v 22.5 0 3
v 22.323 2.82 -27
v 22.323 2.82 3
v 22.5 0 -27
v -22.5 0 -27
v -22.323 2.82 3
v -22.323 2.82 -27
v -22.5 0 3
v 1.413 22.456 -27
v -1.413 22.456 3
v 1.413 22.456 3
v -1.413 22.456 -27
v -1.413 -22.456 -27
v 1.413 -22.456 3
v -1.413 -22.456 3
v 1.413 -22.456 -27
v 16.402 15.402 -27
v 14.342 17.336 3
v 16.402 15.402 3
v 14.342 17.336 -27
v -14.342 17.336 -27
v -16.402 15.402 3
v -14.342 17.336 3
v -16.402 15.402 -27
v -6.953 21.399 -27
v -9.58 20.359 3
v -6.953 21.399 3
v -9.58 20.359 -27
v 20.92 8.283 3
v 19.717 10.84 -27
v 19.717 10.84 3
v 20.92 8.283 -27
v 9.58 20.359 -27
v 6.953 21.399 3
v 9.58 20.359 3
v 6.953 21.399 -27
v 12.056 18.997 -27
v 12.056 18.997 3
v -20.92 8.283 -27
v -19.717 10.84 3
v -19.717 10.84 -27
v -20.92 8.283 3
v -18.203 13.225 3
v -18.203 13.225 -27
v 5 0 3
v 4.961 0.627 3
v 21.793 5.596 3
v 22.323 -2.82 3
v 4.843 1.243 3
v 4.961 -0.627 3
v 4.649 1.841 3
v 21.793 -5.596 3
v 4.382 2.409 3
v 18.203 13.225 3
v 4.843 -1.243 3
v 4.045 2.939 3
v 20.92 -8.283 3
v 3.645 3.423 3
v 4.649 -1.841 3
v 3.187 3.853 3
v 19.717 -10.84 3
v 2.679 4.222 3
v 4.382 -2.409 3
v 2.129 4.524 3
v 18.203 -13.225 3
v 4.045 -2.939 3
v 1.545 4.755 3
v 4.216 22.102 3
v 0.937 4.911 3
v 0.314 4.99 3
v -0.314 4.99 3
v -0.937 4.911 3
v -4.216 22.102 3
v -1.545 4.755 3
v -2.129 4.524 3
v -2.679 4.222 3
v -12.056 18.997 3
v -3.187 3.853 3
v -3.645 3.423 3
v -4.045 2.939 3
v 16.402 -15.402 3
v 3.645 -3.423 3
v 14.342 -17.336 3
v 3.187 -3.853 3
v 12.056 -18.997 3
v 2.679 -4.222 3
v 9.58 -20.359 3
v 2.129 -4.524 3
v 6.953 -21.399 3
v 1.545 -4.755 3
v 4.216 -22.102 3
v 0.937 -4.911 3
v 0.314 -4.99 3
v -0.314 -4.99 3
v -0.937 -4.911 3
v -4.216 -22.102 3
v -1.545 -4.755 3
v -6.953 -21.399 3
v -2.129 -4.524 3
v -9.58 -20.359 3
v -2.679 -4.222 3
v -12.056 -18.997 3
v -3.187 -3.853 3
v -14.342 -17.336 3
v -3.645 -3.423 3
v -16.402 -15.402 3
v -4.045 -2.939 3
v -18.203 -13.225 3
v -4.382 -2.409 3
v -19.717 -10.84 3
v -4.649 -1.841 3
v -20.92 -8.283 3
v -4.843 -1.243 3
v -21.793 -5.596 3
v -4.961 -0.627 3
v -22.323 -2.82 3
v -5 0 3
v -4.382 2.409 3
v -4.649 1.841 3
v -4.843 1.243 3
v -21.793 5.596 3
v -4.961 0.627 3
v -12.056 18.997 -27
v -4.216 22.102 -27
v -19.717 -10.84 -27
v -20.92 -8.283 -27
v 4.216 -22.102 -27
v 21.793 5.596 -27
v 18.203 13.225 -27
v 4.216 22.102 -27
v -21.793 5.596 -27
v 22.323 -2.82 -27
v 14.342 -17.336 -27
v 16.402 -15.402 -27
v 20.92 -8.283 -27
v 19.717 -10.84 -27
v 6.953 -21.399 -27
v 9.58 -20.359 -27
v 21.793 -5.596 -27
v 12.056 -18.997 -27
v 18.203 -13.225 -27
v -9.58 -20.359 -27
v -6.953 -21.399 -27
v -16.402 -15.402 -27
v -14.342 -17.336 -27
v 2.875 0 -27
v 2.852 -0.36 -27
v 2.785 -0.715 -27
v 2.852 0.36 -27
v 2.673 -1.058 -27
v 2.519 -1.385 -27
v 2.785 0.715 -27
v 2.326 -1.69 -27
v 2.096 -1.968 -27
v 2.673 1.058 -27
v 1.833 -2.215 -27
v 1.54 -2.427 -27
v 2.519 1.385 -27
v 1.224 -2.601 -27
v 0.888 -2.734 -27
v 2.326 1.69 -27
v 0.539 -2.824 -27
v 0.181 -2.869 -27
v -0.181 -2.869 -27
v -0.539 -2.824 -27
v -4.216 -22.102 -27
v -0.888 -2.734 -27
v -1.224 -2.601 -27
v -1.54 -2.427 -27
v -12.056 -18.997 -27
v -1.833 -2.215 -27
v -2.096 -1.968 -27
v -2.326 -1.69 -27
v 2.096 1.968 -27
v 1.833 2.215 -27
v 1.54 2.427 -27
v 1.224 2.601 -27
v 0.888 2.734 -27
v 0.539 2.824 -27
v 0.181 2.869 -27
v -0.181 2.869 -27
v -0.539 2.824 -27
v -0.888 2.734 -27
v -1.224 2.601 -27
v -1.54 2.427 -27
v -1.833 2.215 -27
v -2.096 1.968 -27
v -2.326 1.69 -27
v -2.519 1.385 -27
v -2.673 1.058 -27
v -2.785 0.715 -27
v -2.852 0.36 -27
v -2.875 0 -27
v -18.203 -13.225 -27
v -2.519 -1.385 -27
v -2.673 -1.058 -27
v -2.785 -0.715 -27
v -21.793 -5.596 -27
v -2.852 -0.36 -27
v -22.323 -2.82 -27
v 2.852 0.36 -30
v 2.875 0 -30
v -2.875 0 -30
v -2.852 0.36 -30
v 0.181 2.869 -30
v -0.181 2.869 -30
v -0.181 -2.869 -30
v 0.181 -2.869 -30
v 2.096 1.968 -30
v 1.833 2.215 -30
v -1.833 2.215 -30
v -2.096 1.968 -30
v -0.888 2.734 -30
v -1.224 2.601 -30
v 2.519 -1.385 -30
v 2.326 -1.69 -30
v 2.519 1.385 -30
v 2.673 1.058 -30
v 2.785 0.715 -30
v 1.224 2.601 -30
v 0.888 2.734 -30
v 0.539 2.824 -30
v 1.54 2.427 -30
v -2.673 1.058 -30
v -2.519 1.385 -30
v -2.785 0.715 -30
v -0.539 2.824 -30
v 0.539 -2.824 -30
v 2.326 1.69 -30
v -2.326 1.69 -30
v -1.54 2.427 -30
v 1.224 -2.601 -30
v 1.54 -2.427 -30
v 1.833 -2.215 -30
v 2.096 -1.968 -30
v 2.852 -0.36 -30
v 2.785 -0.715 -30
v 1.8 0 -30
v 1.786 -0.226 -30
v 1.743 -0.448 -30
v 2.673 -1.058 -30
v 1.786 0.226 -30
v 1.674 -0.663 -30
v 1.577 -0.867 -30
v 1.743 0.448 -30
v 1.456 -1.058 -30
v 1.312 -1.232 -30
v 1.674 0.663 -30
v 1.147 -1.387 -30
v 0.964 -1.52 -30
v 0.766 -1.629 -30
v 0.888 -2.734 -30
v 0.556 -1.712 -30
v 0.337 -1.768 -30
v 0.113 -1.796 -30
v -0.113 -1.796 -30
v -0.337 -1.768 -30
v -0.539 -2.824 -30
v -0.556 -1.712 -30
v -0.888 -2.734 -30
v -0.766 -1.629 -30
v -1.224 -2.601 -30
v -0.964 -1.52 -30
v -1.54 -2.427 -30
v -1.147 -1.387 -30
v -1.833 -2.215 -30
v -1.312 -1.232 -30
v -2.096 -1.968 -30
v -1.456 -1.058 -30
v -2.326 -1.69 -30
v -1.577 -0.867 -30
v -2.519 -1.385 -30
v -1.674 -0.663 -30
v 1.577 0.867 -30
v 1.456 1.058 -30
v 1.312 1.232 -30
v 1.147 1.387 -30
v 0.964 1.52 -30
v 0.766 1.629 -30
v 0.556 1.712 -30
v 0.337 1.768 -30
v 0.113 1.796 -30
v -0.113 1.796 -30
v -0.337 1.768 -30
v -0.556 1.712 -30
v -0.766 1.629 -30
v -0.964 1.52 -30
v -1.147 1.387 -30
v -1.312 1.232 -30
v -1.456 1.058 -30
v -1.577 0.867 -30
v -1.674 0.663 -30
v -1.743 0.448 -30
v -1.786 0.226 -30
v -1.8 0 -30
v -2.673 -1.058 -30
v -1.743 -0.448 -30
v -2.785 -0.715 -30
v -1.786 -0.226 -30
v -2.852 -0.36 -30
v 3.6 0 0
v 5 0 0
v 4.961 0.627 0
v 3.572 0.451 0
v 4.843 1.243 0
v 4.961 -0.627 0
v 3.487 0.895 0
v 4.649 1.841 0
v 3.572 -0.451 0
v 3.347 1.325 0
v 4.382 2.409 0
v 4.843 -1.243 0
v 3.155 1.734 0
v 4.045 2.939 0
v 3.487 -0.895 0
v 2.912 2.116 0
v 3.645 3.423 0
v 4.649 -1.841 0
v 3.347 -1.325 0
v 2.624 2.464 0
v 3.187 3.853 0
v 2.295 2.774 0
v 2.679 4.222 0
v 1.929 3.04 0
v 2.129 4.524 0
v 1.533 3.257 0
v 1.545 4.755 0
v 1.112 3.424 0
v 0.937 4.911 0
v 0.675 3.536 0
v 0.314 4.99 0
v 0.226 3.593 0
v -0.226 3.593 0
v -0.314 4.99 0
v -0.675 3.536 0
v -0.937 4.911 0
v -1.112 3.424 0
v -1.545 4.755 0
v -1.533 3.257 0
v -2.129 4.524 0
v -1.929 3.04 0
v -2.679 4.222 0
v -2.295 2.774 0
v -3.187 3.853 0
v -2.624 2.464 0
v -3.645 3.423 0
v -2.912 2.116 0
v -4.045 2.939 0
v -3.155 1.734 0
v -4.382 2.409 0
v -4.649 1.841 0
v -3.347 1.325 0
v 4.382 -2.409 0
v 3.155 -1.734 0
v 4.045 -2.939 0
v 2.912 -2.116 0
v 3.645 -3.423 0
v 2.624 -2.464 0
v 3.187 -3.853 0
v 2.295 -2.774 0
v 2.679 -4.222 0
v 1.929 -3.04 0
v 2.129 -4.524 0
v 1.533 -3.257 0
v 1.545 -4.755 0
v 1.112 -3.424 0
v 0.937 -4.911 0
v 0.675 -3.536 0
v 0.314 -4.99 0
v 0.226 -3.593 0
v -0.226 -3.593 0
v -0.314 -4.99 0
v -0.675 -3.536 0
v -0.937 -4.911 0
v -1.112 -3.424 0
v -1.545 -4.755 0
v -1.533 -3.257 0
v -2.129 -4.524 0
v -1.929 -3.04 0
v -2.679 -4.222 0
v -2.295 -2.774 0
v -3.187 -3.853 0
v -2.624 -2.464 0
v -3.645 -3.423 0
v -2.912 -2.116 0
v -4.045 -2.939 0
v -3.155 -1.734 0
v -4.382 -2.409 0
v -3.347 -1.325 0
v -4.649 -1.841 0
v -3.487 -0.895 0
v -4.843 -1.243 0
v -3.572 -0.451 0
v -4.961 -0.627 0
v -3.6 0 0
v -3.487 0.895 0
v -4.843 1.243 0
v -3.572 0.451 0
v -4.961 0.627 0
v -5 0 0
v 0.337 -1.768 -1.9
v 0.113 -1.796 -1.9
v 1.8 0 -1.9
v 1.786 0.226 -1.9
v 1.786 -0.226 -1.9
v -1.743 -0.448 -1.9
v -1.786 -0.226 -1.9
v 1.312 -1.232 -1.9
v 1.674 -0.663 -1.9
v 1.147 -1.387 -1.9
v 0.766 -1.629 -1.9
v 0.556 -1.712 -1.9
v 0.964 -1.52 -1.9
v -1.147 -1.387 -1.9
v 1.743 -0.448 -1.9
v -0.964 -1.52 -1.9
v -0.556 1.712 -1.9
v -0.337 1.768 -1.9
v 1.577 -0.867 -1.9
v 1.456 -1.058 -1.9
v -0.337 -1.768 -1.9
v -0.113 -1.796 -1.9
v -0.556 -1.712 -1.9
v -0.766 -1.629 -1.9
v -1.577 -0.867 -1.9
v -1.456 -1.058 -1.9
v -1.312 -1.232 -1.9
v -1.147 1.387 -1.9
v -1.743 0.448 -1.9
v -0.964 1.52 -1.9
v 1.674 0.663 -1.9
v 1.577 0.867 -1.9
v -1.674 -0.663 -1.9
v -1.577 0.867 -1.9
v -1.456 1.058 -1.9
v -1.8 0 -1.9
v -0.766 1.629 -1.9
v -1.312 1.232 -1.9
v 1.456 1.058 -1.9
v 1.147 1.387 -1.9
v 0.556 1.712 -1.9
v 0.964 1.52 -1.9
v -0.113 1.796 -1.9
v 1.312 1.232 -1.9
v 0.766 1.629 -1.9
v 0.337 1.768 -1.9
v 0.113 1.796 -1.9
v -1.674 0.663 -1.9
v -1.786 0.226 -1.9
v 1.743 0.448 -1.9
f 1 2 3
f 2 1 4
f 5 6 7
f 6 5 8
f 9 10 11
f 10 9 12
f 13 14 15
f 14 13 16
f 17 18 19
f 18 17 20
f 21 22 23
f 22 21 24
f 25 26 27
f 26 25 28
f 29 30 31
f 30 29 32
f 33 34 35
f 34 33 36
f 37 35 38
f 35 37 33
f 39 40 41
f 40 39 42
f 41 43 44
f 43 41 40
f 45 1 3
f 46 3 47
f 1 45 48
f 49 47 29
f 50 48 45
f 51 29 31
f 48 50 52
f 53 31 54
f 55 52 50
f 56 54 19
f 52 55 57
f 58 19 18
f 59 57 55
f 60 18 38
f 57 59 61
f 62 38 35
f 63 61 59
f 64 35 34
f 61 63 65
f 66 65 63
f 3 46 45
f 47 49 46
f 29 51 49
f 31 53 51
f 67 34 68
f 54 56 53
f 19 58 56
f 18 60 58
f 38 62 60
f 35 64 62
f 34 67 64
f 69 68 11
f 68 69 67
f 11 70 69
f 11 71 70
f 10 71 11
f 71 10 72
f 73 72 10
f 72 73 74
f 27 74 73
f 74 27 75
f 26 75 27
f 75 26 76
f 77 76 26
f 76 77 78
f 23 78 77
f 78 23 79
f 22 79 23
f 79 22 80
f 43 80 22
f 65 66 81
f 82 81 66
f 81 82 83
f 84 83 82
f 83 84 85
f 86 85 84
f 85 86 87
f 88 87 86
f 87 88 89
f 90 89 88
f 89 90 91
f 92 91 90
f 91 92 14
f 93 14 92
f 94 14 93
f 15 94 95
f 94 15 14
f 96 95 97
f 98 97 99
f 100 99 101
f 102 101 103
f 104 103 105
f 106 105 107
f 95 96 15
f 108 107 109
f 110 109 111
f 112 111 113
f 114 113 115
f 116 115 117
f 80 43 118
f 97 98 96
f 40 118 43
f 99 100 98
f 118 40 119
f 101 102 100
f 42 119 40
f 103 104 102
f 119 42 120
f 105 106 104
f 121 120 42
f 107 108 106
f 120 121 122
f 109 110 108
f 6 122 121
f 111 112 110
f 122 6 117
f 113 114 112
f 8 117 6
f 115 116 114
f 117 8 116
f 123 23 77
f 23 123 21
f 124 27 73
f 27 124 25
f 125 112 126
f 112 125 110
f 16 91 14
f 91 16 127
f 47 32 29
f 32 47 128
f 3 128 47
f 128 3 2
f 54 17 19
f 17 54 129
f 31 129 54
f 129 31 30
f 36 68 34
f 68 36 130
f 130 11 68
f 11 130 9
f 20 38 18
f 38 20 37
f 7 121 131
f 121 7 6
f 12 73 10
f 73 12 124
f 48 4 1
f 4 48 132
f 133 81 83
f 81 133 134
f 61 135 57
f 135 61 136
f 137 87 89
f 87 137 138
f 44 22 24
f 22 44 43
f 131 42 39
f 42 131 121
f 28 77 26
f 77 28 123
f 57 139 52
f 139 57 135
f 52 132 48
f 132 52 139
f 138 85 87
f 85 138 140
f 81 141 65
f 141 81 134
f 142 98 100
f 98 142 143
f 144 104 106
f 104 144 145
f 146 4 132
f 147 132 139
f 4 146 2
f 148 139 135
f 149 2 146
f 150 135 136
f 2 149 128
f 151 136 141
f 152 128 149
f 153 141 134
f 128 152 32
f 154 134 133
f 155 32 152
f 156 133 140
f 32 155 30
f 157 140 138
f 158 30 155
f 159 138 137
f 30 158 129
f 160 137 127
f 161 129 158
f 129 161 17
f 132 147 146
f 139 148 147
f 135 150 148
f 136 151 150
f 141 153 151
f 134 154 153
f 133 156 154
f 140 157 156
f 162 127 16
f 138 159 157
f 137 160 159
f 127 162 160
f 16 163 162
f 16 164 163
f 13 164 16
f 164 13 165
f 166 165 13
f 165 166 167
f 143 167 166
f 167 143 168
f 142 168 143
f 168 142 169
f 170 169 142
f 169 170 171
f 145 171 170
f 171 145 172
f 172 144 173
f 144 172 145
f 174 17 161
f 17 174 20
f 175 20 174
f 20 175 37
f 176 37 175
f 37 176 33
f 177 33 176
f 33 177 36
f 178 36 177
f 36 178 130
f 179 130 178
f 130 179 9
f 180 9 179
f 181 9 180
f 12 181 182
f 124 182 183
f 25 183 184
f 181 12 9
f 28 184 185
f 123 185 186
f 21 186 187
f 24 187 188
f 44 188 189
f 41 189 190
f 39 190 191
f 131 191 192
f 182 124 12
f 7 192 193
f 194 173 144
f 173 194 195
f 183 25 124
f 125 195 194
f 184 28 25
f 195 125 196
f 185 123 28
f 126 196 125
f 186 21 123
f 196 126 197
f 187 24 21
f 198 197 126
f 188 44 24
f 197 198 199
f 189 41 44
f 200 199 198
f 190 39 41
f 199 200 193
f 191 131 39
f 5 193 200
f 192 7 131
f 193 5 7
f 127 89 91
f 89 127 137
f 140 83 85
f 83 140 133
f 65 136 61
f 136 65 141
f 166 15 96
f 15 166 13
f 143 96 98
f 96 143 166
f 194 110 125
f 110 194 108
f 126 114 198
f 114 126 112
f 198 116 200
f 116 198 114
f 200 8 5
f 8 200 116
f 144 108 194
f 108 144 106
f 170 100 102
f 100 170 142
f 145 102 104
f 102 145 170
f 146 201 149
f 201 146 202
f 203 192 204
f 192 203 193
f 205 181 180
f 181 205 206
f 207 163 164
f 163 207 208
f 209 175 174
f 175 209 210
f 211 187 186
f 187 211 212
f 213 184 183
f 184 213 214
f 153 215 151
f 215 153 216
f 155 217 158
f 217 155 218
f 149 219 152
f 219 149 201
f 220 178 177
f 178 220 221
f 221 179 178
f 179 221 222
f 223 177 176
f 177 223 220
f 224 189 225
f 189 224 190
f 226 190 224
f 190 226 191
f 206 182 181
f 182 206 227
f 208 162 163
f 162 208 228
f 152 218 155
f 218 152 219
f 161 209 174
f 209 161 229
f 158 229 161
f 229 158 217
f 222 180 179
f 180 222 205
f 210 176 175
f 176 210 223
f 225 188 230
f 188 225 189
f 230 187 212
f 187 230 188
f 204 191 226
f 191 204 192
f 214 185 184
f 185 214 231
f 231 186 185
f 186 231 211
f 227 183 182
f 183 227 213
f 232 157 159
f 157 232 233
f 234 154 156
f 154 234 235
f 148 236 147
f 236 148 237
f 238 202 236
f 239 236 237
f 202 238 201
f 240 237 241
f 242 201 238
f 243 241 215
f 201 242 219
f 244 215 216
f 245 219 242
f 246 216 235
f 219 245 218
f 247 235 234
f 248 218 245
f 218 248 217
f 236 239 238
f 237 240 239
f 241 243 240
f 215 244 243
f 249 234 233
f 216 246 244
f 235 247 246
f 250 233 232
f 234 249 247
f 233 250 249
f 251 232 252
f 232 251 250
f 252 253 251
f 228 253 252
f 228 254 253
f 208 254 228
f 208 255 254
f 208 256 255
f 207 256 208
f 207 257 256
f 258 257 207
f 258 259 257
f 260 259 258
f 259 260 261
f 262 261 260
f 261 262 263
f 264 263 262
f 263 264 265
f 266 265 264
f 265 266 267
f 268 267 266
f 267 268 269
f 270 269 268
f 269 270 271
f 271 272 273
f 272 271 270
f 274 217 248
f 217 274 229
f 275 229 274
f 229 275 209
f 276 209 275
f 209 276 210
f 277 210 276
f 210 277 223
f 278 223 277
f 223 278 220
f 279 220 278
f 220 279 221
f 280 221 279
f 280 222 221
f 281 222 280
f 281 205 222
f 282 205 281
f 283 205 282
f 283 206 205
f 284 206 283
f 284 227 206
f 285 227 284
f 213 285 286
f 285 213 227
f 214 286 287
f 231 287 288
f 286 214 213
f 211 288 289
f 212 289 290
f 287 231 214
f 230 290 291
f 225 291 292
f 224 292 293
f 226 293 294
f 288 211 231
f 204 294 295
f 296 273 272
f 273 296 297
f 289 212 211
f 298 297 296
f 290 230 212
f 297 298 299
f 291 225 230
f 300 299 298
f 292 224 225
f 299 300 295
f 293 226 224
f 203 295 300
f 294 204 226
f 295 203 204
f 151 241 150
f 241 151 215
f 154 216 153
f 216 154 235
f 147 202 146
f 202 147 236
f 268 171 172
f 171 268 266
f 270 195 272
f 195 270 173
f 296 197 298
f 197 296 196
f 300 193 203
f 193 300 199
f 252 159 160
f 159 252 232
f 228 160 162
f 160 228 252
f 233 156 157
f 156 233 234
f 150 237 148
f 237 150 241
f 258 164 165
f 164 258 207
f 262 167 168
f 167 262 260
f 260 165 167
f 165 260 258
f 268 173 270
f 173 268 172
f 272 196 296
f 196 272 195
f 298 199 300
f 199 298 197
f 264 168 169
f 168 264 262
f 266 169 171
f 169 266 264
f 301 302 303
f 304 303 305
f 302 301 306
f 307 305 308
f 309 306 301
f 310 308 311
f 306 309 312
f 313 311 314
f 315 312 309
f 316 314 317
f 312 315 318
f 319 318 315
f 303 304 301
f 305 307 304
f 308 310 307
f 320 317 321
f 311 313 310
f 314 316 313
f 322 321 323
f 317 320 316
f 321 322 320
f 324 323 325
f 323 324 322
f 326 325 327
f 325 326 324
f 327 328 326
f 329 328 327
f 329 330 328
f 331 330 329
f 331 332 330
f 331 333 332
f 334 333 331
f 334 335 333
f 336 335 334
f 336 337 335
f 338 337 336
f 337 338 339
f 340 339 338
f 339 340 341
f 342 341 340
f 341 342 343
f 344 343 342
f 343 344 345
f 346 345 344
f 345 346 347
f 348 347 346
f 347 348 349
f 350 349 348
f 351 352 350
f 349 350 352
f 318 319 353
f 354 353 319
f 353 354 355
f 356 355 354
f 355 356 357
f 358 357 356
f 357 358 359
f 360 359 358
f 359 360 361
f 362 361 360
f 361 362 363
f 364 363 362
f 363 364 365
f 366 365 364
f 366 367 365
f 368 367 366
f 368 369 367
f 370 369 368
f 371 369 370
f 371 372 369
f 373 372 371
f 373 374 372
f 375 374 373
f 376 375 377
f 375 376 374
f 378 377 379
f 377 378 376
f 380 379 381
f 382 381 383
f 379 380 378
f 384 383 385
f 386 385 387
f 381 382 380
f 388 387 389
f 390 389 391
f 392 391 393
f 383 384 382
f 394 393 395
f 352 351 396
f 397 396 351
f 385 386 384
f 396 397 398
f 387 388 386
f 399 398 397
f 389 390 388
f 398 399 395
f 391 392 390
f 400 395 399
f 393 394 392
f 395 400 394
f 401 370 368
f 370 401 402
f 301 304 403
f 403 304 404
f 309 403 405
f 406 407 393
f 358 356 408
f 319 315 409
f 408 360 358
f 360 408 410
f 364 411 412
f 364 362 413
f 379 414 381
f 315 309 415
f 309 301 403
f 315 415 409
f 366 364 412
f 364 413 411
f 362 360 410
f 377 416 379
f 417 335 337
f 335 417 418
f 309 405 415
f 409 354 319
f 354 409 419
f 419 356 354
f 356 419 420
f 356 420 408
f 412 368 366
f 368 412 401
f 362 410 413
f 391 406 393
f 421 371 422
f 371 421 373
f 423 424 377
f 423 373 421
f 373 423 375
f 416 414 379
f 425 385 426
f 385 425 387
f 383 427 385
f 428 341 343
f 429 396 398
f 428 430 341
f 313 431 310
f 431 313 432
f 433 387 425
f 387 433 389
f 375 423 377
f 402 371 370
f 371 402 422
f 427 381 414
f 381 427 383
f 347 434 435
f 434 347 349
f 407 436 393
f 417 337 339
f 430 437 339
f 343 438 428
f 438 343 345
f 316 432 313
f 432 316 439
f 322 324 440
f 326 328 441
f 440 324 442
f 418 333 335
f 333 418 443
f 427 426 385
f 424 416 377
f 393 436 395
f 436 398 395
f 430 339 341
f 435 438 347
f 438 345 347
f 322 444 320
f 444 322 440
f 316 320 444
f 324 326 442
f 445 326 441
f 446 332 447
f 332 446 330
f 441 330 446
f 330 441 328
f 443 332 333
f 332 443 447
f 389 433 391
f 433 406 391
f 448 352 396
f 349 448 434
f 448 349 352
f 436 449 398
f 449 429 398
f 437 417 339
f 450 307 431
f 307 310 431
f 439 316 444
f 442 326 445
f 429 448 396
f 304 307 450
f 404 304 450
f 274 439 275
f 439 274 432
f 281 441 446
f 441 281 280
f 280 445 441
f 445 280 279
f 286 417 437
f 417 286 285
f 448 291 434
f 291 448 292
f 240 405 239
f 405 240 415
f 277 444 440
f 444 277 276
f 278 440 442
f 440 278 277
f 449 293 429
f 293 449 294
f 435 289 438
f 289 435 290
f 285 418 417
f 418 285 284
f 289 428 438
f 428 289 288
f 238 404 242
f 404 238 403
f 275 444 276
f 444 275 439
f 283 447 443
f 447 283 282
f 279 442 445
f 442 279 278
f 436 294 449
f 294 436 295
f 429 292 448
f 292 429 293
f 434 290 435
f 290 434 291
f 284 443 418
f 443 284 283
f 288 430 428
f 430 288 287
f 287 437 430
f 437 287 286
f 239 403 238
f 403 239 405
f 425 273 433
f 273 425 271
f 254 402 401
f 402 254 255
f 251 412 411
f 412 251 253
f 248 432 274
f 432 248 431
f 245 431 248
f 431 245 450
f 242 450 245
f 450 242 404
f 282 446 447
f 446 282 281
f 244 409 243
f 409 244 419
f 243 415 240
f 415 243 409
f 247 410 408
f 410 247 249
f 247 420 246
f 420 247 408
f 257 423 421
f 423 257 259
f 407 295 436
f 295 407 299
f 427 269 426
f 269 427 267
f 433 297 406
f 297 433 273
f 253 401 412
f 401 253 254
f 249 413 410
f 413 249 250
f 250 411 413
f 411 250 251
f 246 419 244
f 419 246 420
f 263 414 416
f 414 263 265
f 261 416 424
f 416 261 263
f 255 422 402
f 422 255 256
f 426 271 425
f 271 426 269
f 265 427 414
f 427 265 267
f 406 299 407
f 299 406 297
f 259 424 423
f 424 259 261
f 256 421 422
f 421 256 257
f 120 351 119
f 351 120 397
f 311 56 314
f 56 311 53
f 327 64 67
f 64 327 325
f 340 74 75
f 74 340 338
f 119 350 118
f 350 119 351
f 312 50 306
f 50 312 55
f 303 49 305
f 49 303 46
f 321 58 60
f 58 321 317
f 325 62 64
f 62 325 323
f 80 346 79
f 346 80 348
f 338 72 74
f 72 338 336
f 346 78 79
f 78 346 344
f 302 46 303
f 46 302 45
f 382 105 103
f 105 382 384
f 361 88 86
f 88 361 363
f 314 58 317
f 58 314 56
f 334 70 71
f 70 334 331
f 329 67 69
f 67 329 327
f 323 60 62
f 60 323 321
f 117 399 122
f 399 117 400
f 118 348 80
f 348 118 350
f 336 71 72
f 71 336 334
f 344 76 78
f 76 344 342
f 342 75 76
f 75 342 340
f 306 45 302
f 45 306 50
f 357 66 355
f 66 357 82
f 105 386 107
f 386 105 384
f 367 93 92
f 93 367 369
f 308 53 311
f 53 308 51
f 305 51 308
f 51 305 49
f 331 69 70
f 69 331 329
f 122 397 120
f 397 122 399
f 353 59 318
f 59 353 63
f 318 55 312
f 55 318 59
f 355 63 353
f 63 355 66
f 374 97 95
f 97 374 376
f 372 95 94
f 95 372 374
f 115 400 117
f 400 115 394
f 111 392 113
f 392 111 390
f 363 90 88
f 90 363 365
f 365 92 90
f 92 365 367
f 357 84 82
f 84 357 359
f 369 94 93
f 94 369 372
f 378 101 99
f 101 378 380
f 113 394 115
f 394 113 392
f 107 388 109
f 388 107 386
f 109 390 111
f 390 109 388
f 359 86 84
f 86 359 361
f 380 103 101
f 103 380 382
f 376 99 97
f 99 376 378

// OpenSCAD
$fn = 50;

difference() {
	union() {
		translate(v = [0, 0, -27.0]) {
			cylinder(h = 30, r = 22.5);
		}
		#translate(v = [0, 0, -30.0]) {
			cylinder(h = 30, r = 2.875);
		}
	}
	union() {
		translate(v = [0, 0, 0]) {
			rotate(a = [0, 0, 0]) {
				difference() {
					union() {
						translate(v = [0, 0, -30.0]) {
							cylinder(h = 30, r = 1.5);
						}
						translate(v = [0, 0, -1.9]) {
							cylinder(h = 1.9, r1 = 1.8, r2 = 3.6);
						}
						translate(v = [0, 0, -30.0]) {
							cylinder(h = 30, r = 1.8);
						}
						translate(v = [0, 0, -30.0]) {
							cylinder(h = 30, r = 1.5);
						}
					}
					union();
				}
			}
		}
		#cylinder(h = 3, r = 5.0);
	}
}
